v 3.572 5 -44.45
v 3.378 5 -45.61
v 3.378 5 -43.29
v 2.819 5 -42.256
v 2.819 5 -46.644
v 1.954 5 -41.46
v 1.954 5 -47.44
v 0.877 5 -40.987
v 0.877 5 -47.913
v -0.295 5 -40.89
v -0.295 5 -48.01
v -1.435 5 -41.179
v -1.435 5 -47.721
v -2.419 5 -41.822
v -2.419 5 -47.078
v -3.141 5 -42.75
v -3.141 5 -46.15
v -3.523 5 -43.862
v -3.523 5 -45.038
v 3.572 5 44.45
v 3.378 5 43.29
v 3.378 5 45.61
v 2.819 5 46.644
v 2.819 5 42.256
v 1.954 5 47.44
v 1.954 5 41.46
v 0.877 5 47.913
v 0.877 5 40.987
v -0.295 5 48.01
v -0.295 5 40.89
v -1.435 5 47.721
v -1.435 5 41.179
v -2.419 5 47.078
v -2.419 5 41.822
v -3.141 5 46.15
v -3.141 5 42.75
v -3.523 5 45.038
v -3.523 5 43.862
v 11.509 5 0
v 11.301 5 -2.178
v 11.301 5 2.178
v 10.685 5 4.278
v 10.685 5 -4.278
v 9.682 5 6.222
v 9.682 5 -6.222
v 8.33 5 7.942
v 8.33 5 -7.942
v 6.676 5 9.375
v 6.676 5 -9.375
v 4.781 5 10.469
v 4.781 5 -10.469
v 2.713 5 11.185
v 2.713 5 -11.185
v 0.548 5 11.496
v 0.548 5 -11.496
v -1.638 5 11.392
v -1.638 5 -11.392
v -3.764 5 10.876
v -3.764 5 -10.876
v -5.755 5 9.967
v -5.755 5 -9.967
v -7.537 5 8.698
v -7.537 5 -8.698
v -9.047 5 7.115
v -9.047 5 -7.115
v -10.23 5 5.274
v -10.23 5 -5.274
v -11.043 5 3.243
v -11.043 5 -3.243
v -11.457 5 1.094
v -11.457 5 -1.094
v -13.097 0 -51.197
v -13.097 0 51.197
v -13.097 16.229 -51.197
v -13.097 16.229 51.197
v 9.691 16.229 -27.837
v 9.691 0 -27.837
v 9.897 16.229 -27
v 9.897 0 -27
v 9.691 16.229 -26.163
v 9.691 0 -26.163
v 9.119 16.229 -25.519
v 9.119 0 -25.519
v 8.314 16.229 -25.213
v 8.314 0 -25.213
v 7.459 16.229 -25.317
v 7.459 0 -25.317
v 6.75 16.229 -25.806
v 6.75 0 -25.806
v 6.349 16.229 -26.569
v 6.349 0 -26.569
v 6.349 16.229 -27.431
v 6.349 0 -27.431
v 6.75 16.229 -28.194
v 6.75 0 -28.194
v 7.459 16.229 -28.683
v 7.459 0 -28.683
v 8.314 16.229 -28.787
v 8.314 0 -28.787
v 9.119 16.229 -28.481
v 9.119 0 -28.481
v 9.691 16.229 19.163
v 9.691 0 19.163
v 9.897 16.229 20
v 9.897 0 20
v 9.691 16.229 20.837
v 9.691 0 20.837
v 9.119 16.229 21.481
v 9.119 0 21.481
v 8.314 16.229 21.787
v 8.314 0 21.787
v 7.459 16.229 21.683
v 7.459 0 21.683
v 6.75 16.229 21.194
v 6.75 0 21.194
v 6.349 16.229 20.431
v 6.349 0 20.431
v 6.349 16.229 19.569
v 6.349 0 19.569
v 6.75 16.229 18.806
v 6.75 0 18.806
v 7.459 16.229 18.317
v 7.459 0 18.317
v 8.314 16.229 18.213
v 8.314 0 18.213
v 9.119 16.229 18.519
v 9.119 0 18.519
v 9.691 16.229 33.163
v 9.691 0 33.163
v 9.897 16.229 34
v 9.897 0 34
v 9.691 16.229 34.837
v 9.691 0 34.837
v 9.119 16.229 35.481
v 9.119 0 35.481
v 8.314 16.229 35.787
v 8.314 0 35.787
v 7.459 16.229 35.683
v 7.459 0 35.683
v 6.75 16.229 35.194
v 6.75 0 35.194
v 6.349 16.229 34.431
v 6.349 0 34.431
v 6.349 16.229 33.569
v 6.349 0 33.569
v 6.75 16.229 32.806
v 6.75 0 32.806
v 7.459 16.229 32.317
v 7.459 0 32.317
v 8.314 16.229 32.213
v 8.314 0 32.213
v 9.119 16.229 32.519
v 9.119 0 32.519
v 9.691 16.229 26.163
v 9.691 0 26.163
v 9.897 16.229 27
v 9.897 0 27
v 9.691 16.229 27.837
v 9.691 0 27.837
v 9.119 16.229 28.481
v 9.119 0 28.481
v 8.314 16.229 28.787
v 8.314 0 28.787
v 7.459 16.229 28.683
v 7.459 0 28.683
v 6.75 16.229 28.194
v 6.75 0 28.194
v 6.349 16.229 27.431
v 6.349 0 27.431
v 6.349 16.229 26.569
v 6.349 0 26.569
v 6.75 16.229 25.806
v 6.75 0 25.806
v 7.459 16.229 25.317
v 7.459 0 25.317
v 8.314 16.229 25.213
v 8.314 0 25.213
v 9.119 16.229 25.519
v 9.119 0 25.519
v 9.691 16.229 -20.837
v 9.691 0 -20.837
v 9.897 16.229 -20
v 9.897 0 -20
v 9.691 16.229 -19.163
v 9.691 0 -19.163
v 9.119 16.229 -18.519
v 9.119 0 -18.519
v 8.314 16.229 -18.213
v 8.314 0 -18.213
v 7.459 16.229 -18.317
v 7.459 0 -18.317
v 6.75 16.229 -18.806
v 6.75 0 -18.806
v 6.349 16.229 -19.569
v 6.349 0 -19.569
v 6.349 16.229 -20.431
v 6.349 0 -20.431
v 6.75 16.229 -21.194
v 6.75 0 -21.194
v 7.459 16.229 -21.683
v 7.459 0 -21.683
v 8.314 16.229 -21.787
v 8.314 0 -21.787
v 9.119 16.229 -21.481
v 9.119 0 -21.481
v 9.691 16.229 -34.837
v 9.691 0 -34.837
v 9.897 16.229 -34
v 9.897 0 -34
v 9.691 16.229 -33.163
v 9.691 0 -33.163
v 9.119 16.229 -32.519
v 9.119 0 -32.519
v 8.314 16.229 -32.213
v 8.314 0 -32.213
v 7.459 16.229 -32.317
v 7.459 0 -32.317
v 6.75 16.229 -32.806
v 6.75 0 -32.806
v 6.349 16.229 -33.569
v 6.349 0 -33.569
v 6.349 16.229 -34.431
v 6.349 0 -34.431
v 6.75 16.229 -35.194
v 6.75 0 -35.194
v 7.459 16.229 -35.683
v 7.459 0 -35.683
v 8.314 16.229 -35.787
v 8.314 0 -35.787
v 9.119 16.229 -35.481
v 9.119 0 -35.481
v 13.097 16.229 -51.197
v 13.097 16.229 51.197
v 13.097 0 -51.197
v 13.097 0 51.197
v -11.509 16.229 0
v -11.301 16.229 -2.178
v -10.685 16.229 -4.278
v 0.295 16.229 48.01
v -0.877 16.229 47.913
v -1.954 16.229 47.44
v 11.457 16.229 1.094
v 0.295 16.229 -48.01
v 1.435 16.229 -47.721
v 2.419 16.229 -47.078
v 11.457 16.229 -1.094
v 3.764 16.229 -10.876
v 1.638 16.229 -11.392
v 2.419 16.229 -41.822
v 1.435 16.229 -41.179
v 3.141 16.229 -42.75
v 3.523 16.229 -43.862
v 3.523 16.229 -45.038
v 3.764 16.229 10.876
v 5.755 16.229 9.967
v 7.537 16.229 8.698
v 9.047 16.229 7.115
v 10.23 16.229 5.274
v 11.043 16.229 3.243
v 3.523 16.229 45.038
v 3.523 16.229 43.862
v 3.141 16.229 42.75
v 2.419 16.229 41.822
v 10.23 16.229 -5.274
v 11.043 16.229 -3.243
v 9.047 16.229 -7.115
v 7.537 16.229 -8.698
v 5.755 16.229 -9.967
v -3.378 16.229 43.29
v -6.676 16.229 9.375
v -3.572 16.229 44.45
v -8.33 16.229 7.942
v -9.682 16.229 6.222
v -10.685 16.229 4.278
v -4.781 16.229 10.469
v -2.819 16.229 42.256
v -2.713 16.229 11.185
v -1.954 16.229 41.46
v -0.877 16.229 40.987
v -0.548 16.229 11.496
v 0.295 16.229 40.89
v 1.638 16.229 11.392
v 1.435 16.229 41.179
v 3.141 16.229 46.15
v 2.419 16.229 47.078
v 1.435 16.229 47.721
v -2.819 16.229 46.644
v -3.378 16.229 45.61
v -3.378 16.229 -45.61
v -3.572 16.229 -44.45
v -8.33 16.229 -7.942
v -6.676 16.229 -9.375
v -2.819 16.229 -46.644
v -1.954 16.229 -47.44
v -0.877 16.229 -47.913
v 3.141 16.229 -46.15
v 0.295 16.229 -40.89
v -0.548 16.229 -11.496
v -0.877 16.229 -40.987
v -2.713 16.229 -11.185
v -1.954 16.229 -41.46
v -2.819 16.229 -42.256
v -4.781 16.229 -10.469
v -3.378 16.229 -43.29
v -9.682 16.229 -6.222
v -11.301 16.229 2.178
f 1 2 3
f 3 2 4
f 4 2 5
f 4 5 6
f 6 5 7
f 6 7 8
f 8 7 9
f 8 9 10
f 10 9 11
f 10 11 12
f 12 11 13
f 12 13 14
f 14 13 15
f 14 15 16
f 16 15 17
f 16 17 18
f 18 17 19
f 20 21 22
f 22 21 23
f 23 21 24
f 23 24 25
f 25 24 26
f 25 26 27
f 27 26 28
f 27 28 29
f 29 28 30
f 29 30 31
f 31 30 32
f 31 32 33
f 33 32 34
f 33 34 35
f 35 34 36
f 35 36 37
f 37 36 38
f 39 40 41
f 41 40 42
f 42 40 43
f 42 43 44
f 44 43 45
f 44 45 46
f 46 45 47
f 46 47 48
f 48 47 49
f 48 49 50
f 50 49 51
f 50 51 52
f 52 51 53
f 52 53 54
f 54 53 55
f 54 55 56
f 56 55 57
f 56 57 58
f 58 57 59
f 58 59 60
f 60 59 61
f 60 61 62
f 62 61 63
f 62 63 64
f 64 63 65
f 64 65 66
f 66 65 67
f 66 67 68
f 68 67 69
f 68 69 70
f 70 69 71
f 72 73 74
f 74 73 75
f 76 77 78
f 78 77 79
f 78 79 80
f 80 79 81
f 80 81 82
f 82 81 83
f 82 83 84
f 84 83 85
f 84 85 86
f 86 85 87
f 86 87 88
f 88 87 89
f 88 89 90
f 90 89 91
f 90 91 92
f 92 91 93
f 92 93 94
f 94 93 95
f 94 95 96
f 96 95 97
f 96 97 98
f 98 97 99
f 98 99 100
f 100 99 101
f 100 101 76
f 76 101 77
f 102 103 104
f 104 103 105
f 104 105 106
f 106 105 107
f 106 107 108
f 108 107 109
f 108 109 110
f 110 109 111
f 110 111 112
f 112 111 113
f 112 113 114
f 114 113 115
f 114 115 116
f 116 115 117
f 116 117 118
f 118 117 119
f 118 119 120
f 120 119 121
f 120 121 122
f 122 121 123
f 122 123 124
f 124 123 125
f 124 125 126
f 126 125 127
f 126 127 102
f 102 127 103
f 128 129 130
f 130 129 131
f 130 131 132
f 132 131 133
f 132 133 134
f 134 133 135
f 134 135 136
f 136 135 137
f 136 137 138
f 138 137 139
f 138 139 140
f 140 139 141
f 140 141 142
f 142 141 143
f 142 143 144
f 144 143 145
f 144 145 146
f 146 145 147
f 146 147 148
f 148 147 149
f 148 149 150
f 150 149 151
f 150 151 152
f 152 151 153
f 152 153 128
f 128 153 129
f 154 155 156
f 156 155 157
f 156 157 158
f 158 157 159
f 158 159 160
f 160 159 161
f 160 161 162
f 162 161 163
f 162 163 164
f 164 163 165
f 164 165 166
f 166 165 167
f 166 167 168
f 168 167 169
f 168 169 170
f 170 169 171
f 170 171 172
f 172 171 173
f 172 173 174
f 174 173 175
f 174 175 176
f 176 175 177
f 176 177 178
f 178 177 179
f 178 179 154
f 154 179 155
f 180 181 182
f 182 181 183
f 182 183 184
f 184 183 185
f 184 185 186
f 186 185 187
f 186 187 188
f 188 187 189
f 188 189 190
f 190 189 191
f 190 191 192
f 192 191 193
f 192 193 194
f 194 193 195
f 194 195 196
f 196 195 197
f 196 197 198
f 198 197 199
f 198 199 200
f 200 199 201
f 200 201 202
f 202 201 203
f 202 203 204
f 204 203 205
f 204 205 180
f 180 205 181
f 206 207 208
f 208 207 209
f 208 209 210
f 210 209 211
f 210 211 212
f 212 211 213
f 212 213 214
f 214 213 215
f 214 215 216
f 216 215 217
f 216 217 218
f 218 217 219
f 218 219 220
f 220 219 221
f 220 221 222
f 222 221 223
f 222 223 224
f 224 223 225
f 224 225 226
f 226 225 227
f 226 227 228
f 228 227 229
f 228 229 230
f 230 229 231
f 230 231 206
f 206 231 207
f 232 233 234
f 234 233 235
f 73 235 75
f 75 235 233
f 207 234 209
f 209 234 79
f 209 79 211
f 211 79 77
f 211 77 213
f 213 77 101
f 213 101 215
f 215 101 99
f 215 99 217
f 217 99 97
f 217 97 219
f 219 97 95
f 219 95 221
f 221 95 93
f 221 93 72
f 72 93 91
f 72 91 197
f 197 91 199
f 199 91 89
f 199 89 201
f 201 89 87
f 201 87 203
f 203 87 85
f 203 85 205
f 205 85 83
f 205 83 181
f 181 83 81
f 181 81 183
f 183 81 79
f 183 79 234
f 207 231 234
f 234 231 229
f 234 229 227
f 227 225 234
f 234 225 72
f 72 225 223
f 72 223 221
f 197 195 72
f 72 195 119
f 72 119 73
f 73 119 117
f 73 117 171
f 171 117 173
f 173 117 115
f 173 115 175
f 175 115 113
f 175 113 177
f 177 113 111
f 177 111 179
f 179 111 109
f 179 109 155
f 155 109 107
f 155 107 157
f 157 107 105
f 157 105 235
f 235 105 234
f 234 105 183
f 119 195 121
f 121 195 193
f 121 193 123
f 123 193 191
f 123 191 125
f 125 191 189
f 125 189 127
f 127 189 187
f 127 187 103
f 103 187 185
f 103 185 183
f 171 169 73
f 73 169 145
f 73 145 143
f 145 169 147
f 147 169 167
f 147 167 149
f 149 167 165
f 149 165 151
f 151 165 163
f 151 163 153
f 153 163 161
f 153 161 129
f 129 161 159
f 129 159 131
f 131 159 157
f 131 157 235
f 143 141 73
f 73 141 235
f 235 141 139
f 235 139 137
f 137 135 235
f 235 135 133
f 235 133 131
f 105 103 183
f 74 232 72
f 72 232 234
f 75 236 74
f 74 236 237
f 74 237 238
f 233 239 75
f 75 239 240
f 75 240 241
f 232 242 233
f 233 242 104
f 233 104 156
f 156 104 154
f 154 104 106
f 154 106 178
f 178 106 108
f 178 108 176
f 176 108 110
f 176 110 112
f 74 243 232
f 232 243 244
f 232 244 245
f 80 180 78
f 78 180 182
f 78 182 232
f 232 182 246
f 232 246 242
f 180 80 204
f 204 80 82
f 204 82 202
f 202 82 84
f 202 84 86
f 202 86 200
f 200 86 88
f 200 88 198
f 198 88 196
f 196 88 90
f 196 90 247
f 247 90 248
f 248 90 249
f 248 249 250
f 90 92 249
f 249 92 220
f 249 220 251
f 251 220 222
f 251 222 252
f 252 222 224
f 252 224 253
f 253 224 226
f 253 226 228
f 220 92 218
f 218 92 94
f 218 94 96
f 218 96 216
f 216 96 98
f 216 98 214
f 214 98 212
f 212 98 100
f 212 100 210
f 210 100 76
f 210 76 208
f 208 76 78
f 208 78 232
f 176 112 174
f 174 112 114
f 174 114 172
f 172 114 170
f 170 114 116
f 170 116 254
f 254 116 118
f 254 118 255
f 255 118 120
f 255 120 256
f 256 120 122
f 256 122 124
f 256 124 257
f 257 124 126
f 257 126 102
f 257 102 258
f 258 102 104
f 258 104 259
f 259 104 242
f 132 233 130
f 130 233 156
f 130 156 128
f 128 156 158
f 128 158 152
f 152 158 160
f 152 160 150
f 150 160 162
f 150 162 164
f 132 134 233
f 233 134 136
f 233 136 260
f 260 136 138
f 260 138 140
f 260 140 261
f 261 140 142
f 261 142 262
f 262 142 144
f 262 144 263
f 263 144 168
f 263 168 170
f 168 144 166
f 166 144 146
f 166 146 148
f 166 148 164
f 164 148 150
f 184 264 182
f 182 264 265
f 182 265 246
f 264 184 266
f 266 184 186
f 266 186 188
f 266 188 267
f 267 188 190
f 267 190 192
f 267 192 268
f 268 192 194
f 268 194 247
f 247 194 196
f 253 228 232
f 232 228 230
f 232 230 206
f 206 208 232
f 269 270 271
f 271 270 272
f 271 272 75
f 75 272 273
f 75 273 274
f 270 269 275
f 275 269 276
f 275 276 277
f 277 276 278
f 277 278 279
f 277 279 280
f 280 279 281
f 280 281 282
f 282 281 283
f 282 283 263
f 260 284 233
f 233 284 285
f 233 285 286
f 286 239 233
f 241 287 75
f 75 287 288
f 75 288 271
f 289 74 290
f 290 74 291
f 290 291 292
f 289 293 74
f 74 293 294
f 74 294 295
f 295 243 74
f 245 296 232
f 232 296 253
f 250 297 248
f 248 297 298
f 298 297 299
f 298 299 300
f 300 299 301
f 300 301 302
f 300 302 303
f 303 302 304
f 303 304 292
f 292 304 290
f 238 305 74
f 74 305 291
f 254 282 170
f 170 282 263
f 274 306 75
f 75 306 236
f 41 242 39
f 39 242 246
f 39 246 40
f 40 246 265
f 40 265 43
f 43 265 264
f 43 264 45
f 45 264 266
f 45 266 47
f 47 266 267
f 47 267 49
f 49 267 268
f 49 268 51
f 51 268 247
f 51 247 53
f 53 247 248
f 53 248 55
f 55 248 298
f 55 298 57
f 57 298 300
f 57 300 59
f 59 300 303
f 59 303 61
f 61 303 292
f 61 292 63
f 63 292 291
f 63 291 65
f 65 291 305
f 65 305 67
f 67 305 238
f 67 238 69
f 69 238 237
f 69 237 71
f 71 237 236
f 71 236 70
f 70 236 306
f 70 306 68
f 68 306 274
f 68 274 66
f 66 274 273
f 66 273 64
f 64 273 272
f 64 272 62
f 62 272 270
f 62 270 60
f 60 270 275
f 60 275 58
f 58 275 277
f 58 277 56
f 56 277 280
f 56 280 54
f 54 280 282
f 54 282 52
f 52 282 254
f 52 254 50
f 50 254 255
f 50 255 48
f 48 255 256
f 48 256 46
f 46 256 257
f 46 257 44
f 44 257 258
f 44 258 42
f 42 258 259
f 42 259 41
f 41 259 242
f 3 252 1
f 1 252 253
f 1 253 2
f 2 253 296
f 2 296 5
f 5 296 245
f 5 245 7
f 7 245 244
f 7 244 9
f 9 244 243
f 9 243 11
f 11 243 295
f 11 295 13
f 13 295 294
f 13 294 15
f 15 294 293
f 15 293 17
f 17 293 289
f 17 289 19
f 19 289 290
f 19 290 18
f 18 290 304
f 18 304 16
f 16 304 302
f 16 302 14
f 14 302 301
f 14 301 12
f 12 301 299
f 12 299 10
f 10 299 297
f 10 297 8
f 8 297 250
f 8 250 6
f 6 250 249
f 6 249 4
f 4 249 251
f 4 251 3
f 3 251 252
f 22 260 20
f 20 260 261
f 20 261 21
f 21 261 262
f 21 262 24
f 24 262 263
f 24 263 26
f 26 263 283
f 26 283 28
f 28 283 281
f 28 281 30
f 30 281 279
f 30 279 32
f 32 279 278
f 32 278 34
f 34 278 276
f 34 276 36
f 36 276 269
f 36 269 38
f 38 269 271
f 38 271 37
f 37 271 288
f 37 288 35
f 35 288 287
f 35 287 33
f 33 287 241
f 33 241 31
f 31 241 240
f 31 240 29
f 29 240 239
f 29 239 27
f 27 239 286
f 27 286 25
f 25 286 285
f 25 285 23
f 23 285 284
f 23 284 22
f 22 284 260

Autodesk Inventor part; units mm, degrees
ref_plane "YZ Plane" through (0, 0, 0) normal (1, 0, 0) x (0, 1, 0)
ref_plane "XZ Plane" through (0, 0, 0) normal (0, 1, 0) x (-1, 0, 0)
ref_plane "XY Plane" through (0, 0, 0) normal (0, 0, 1) x (1, 0, 0)
sketch "Sketch1" plane through (0, 0, 0) normal (0, 1, 0) x (-1, 0, 0)
  line L0 (19.05, -83) -> (19.05, 83)
  line L1 (-19.05, 83) -> (-19.05, -83)
  circle A0 centre (0, 0) radius 11.5094
  line L2 (0, 0) -> (-0.4877, 3.251) construction
  line L3 (0, 0) -> (0, 44.45) construction
  line L4 (0, 0) -> (0, -44.45) construction
  circle A1 centre (0, 44.45) radius 3.5719
  circle A2 centre (0, -44.45) radius 3.5719
  line L5 (19.05, 83) -> (-19.05, 83)
  line L6 (19.05, -83) -> (-19.05, -83)
  dimension "d2" = 23.0188
  dimension "d4" = 44.45
  dimension "d5" = 44.45
  dimension "d6" = 7.1437
  dimension "d7" = 7.1437
extrude "Extrusion1" add sketch "Sketch1" along normal blind 25.4
sketch "Sketch6" plane through (0, 0, 0) normal (0, -1, 0) x (1, 0, 0)
  circle A0 centre (0, 44.45) radius 3.5719 projected
  circle A1 centre (0, 44.45) radius 3.5719
  circle A2 centre (0, -44.45) radius 3.5719 projected
  circle A3 centre (0, -44.45) radius 3.5719
  circle A4 centre (0, 0) radius 5.1594
  circle A5 centre (0, 0) radius 11.5094
  dimension "d102" = 35.7188
sketch "Sketch13" plane through (0, 25.4, 0) normal (0, 1, 0) x (1, 0, 0)
  line L0 (-19.05, -83) -> (19.05, -83) construction
  line L1 (19.05, 83) -> (-19.05, 83) construction
  circle A0 centre (8.0969, -34) radius 1.8
  circle A1 centre (8.0969, -27) radius 1.8
  circle A2 centre (8.0969, -20) radius 1.8
  circle A3 centre (8.0969, 20) radius 1.8
  circle A4 centre (8.0969, 27) radius 1.8
  circle A5 centre (8.0969, 34) radius 1.8
  circle A6 centre (0, 0) radius 11.5094 projected
  line L2 (-19.05, 83) -> (-19.05, -83) projected
  line L3 (-19.05, -83) -> (-13.0969, -83)
  line L4 (-13.0969, -83) -> (-13.0969, 83)
  line L5 (-13.0969, 83) -> (-19.05, 83)
  line L6 (-19.05, 83) -> (-19.05, -83)
  line L7 (19.05, -83) -> (13.0969, -83)
  line L8 (13.0969, -83) -> (13.0969, 83)
  line L9 (13.0969, 83) -> (19.05, 83)
  line L10 (19.05, 83) -> (19.05, -83)
  line L11 (13.0969, -83) -> (3.0969, -83) construction
  line L12 (3.0969, -83) -> (3.0969, 83) construction
  line L13 (3.0969, 83) -> (13.0969, 83) construction
  line L14 (13.0969, 83) -> (13.0969, -83) construction
  line L15 (8.0969, -83) -> (8.0969, 83) construction
  dimension "d82" = 3.6
  dimension "d83" = 3.6
  dimension "d84" = 3.6
  dimension "d85" = 3.6
  dimension "d86" = 3.6
  dimension "d87" = 3.6
  dimension "d88" = 7
  dimension "d89" = 7
  dimension "d90" = 7
  dimension "d92" = 7
  dimension "d93" = 20
  dimension "d94" = 20
  dimension "d97" = 1.5875
  dimension "d99" = 1.5875
  dimension "d105" = 10
sketch "Sketch14" plane through (19.05, 0, -83) normal (0, 0, -1) x (-1, 0, 0)
  line L0 (0, 0) -> (0, 25.4) projected
  line L1 (38.1, 0) -> (38.1, 25.4) projected
  line L2 (0, 25.4) -> (38.1, 25.4)
  line L3 (38.1, 25.4) -> (38.1, 16.2292)
  line L4 (38.1, 16.2292) -> (0, 16.2292)
  line L5 (0, 16.2292) -> (0, 25.4)
  point P0 (19.05, 0)
extrude "Extrusion15" cut sketch "Sketch14" against normal up to next
sketch "Sketch15" plane through (-19.05, 16.2292, -83) normal (0, 1, 0) x (1, 0, 0)
  line L0 (38.1, -166) -> (0, -166) projected
  line L1 (38.1, 0) -> (38.1, -166) projected
  line L2 (0, -166) -> (38.1, -166)
  line L3 (38.1, -166) -> (38.1, -134.1969)
  line L4 (38.1, -134.1969) -> (0, -134.1969)
  line L5 (0, -134.1969) -> (0, -166)
  circle A0 centre (19.05, -127.45) radius 3.5719 projected
  line L6 (0, -166) -> (0, 0) projected
  line L7 (0, 0) -> (38.1, 0)
  line L8 (38.1, 0) -> (38.1, -31.8031)
  line L9 (38.1, -31.8031) -> (0, -31.8031)
  line L10 (0, -31.8031) -> (0, 0)
  circle A1 centre (19.05, -38.55) radius 3.5719 projected
  point P0 (19.05, -83)
  dimension "d78" = 3.175
  dimension "d79" = 3.175
extrude "Extrusion16" cut sketch "Sketch15" against normal up to next contours L0 L5 L4 L1 | L9 L6 L7 L1
extrude "Extrusion18" cut sketch "Sketch13" against normal up to next contours A0 | A1 | A2 | A3 | A4 | A5 | L5 L4 L3 L2 | L7 L8 L9 L10
extrude "Extrusion19" add sketch "Sketch6" against normal blind 5 contours A0 | A2 | A4 | A5
properties part number "RodBase"
